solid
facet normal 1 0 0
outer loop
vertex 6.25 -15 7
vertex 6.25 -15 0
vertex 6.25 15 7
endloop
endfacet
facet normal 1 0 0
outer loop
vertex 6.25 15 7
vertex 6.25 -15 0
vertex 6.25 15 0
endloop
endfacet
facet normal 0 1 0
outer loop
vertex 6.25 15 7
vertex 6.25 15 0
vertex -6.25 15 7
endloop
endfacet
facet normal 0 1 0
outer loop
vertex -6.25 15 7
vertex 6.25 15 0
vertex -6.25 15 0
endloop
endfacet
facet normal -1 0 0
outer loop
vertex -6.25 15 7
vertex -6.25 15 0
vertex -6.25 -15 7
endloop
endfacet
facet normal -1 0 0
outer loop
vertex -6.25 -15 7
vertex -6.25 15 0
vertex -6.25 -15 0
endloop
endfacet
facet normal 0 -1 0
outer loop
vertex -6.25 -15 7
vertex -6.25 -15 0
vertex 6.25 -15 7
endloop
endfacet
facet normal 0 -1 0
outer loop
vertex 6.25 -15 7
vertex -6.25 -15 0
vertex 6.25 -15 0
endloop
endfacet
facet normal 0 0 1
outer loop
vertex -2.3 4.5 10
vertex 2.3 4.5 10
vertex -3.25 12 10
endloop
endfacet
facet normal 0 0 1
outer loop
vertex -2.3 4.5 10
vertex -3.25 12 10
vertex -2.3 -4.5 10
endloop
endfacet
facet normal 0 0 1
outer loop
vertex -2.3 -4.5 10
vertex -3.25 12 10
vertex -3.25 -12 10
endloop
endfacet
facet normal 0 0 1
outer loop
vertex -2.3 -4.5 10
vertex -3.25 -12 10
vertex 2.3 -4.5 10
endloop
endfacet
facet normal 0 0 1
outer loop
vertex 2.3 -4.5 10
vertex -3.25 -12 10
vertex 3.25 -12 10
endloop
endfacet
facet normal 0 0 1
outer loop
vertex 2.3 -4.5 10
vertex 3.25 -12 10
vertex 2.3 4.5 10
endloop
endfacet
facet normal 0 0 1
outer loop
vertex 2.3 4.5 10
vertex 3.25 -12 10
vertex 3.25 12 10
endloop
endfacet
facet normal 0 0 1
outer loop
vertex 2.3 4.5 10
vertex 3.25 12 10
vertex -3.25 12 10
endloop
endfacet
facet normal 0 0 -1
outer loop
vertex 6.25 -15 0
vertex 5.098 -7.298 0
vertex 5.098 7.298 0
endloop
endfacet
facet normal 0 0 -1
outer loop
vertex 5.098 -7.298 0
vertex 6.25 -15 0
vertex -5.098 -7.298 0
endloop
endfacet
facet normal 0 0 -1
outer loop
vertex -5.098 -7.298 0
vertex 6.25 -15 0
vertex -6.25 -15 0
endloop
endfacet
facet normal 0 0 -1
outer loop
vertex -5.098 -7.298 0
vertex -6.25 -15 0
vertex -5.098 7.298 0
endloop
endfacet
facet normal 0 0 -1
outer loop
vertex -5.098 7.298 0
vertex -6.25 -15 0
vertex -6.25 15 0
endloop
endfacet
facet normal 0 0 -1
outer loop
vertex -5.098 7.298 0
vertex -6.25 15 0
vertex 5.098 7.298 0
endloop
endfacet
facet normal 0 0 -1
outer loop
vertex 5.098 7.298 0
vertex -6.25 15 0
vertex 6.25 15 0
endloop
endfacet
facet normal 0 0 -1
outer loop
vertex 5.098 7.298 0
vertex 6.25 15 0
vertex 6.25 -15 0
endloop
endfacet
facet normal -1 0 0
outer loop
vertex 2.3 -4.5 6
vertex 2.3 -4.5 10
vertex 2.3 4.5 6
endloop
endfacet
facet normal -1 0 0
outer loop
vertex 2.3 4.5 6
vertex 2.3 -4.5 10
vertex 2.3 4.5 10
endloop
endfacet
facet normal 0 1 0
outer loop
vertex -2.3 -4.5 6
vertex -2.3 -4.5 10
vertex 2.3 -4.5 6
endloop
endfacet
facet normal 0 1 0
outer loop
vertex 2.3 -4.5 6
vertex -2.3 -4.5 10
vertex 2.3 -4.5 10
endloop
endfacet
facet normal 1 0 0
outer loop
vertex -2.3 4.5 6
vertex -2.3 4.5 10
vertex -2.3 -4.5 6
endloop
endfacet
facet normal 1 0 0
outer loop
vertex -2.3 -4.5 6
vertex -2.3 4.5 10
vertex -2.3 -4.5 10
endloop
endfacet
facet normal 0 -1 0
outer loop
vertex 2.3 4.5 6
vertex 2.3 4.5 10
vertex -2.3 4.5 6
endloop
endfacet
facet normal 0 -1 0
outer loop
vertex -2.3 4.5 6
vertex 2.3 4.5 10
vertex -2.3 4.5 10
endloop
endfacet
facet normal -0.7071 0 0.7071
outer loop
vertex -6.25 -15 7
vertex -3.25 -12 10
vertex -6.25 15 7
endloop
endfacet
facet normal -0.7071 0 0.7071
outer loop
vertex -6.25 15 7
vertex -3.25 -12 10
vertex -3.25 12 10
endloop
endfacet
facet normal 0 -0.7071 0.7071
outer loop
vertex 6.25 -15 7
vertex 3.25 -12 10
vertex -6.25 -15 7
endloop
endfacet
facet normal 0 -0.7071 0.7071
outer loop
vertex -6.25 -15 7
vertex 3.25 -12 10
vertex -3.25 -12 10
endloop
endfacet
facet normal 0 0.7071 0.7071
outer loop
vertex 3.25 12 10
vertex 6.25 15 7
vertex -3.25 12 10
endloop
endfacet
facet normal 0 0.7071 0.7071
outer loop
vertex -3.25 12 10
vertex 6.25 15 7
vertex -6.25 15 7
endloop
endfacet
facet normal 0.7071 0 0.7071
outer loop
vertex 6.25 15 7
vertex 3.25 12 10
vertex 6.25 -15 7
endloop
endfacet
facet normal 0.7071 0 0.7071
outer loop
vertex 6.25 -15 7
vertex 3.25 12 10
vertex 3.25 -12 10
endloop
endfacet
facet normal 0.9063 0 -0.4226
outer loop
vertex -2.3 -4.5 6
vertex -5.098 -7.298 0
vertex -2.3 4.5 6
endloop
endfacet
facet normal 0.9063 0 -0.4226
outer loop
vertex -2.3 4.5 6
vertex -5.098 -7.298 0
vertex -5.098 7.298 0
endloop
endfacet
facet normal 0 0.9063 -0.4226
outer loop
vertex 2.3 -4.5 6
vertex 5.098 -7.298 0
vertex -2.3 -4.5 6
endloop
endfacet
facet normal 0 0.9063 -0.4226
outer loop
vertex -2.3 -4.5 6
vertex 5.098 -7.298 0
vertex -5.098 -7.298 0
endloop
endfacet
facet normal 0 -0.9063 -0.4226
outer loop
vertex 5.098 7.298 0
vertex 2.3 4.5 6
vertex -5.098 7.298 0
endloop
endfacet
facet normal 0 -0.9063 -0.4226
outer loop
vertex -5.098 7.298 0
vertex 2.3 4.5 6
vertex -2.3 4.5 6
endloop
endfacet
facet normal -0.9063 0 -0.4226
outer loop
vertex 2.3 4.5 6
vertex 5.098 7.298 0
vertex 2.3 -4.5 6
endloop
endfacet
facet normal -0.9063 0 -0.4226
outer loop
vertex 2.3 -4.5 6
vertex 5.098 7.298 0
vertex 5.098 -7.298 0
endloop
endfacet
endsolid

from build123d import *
from OCP.BRepFilletAPI import BRepFilletAPI_MakeChamfer

# Parameters (mm, degrees)
ESBO_O1_W                = 12.5
ESBO_O1_H                = 30
RESSALTO_EXTRUS_O1_DEPTH = 10
ESBO_O2_W                = 4.6
ESBO_O2_H                = 9
CORTE_EXTRUS_O1_DEPTH    = 20.080421903
CHANFRO1_SIZE            = 3
CHANFRO2_SIZE            = 6
CHANFRO2_SIZE2           = 2.797845949


with BuildPart() as part:
    # Esboço1 → Ressalto-extrusão1 (new body)
    with BuildSketch(Plane.XY):
        Rectangle(ESBO_O1_W, ESBO_O1_H)
    extrude(amount=RESSALTO_EXTRUS_O1_DEPTH)

    # Esboço2 → Corte-extrusão1 (cut, through all)
    with BuildSketch(Plane.XY.offset(10)):
        Rectangle(ESBO_O2_W, ESBO_O2_H)
    extrude(amount=-CORTE_EXTRUS_O1_DEPTH, mode=Mode.SUBTRACT)

    # Chanfro1
    chanfro1_edges = [part.edges().sort_by_distance(p)[0] for p in [
        (-6.25, 0, 10),
        (0, -15, 10),
        (6.25, 0, 10),
        (0, 15, 10),
    ]]
    chamfer(chanfro1_edges, length=CHANFRO1_SIZE)

    # Chanfro2: one chamfer whose edges measure the first distance from different faces: ONE call of the kernel's chamfer builder (chamfer() names one face for all edges)
    chanfro2_edges_1 = [part.edges().sort_by_distance(p)[0] for p in [
        (2.3, 0, 0),
    ]]
    chanfro2_side_1 = [part.faces().sort_by_distance(p)[0] for p in [
        (2.3, 0, 5),
    ]]
    chanfro2_edges_2 = [part.edges().sort_by_distance(p)[0] for p in [
        (0, -4.5, 0),
    ]]
    chanfro2_side_2 = [part.faces().sort_by_distance(p)[0] for p in [
        (0, -4.5, 5),
    ]]
    chanfro2_edges_3 = [part.edges().sort_by_distance(p)[0] for p in [
        (-2.3, 0, 0),
    ]]
    chanfro2_side_3 = [part.faces().sort_by_distance(p)[0] for p in [
        (-2.3, 0, 5),
    ]]
    chanfro2_edges_4 = [part.edges().sort_by_distance(p)[0] for p in [
        (0, 4.5, 0),
    ]]
    chanfro2_side_4 = [part.faces().sort_by_distance(p)[0] for p in [
        (0, 4.5, 5),
    ]]
    chanfro2 = BRepFilletAPI_MakeChamfer(part.part.solid().wrapped)
    for e in chanfro2_edges_1:
        chanfro2.Add(CHANFRO2_SIZE, CHANFRO2_SIZE2, e.wrapped, chanfro2_side_1[0].wrapped)  # the first distance lies on this face
    for e in chanfro2_edges_2:
        chanfro2.Add(CHANFRO2_SIZE, CHANFRO2_SIZE2, e.wrapped, chanfro2_side_2[0].wrapped)  # the first distance lies on this face
    for e in chanfro2_edges_3:
        chanfro2.Add(CHANFRO2_SIZE, CHANFRO2_SIZE2, e.wrapped, chanfro2_side_3[0].wrapped)  # the first distance lies on this face
    for e in chanfro2_edges_4:
        chanfro2.Add(CHANFRO2_SIZE, CHANFRO2_SIZE2, e.wrapped, chanfro2_side_4[0].wrapped)  # the first distance lies on this face
    add(Compound.cast(chanfro2.Shape()), mode=Mode.REPLACE)


solid = part.part
